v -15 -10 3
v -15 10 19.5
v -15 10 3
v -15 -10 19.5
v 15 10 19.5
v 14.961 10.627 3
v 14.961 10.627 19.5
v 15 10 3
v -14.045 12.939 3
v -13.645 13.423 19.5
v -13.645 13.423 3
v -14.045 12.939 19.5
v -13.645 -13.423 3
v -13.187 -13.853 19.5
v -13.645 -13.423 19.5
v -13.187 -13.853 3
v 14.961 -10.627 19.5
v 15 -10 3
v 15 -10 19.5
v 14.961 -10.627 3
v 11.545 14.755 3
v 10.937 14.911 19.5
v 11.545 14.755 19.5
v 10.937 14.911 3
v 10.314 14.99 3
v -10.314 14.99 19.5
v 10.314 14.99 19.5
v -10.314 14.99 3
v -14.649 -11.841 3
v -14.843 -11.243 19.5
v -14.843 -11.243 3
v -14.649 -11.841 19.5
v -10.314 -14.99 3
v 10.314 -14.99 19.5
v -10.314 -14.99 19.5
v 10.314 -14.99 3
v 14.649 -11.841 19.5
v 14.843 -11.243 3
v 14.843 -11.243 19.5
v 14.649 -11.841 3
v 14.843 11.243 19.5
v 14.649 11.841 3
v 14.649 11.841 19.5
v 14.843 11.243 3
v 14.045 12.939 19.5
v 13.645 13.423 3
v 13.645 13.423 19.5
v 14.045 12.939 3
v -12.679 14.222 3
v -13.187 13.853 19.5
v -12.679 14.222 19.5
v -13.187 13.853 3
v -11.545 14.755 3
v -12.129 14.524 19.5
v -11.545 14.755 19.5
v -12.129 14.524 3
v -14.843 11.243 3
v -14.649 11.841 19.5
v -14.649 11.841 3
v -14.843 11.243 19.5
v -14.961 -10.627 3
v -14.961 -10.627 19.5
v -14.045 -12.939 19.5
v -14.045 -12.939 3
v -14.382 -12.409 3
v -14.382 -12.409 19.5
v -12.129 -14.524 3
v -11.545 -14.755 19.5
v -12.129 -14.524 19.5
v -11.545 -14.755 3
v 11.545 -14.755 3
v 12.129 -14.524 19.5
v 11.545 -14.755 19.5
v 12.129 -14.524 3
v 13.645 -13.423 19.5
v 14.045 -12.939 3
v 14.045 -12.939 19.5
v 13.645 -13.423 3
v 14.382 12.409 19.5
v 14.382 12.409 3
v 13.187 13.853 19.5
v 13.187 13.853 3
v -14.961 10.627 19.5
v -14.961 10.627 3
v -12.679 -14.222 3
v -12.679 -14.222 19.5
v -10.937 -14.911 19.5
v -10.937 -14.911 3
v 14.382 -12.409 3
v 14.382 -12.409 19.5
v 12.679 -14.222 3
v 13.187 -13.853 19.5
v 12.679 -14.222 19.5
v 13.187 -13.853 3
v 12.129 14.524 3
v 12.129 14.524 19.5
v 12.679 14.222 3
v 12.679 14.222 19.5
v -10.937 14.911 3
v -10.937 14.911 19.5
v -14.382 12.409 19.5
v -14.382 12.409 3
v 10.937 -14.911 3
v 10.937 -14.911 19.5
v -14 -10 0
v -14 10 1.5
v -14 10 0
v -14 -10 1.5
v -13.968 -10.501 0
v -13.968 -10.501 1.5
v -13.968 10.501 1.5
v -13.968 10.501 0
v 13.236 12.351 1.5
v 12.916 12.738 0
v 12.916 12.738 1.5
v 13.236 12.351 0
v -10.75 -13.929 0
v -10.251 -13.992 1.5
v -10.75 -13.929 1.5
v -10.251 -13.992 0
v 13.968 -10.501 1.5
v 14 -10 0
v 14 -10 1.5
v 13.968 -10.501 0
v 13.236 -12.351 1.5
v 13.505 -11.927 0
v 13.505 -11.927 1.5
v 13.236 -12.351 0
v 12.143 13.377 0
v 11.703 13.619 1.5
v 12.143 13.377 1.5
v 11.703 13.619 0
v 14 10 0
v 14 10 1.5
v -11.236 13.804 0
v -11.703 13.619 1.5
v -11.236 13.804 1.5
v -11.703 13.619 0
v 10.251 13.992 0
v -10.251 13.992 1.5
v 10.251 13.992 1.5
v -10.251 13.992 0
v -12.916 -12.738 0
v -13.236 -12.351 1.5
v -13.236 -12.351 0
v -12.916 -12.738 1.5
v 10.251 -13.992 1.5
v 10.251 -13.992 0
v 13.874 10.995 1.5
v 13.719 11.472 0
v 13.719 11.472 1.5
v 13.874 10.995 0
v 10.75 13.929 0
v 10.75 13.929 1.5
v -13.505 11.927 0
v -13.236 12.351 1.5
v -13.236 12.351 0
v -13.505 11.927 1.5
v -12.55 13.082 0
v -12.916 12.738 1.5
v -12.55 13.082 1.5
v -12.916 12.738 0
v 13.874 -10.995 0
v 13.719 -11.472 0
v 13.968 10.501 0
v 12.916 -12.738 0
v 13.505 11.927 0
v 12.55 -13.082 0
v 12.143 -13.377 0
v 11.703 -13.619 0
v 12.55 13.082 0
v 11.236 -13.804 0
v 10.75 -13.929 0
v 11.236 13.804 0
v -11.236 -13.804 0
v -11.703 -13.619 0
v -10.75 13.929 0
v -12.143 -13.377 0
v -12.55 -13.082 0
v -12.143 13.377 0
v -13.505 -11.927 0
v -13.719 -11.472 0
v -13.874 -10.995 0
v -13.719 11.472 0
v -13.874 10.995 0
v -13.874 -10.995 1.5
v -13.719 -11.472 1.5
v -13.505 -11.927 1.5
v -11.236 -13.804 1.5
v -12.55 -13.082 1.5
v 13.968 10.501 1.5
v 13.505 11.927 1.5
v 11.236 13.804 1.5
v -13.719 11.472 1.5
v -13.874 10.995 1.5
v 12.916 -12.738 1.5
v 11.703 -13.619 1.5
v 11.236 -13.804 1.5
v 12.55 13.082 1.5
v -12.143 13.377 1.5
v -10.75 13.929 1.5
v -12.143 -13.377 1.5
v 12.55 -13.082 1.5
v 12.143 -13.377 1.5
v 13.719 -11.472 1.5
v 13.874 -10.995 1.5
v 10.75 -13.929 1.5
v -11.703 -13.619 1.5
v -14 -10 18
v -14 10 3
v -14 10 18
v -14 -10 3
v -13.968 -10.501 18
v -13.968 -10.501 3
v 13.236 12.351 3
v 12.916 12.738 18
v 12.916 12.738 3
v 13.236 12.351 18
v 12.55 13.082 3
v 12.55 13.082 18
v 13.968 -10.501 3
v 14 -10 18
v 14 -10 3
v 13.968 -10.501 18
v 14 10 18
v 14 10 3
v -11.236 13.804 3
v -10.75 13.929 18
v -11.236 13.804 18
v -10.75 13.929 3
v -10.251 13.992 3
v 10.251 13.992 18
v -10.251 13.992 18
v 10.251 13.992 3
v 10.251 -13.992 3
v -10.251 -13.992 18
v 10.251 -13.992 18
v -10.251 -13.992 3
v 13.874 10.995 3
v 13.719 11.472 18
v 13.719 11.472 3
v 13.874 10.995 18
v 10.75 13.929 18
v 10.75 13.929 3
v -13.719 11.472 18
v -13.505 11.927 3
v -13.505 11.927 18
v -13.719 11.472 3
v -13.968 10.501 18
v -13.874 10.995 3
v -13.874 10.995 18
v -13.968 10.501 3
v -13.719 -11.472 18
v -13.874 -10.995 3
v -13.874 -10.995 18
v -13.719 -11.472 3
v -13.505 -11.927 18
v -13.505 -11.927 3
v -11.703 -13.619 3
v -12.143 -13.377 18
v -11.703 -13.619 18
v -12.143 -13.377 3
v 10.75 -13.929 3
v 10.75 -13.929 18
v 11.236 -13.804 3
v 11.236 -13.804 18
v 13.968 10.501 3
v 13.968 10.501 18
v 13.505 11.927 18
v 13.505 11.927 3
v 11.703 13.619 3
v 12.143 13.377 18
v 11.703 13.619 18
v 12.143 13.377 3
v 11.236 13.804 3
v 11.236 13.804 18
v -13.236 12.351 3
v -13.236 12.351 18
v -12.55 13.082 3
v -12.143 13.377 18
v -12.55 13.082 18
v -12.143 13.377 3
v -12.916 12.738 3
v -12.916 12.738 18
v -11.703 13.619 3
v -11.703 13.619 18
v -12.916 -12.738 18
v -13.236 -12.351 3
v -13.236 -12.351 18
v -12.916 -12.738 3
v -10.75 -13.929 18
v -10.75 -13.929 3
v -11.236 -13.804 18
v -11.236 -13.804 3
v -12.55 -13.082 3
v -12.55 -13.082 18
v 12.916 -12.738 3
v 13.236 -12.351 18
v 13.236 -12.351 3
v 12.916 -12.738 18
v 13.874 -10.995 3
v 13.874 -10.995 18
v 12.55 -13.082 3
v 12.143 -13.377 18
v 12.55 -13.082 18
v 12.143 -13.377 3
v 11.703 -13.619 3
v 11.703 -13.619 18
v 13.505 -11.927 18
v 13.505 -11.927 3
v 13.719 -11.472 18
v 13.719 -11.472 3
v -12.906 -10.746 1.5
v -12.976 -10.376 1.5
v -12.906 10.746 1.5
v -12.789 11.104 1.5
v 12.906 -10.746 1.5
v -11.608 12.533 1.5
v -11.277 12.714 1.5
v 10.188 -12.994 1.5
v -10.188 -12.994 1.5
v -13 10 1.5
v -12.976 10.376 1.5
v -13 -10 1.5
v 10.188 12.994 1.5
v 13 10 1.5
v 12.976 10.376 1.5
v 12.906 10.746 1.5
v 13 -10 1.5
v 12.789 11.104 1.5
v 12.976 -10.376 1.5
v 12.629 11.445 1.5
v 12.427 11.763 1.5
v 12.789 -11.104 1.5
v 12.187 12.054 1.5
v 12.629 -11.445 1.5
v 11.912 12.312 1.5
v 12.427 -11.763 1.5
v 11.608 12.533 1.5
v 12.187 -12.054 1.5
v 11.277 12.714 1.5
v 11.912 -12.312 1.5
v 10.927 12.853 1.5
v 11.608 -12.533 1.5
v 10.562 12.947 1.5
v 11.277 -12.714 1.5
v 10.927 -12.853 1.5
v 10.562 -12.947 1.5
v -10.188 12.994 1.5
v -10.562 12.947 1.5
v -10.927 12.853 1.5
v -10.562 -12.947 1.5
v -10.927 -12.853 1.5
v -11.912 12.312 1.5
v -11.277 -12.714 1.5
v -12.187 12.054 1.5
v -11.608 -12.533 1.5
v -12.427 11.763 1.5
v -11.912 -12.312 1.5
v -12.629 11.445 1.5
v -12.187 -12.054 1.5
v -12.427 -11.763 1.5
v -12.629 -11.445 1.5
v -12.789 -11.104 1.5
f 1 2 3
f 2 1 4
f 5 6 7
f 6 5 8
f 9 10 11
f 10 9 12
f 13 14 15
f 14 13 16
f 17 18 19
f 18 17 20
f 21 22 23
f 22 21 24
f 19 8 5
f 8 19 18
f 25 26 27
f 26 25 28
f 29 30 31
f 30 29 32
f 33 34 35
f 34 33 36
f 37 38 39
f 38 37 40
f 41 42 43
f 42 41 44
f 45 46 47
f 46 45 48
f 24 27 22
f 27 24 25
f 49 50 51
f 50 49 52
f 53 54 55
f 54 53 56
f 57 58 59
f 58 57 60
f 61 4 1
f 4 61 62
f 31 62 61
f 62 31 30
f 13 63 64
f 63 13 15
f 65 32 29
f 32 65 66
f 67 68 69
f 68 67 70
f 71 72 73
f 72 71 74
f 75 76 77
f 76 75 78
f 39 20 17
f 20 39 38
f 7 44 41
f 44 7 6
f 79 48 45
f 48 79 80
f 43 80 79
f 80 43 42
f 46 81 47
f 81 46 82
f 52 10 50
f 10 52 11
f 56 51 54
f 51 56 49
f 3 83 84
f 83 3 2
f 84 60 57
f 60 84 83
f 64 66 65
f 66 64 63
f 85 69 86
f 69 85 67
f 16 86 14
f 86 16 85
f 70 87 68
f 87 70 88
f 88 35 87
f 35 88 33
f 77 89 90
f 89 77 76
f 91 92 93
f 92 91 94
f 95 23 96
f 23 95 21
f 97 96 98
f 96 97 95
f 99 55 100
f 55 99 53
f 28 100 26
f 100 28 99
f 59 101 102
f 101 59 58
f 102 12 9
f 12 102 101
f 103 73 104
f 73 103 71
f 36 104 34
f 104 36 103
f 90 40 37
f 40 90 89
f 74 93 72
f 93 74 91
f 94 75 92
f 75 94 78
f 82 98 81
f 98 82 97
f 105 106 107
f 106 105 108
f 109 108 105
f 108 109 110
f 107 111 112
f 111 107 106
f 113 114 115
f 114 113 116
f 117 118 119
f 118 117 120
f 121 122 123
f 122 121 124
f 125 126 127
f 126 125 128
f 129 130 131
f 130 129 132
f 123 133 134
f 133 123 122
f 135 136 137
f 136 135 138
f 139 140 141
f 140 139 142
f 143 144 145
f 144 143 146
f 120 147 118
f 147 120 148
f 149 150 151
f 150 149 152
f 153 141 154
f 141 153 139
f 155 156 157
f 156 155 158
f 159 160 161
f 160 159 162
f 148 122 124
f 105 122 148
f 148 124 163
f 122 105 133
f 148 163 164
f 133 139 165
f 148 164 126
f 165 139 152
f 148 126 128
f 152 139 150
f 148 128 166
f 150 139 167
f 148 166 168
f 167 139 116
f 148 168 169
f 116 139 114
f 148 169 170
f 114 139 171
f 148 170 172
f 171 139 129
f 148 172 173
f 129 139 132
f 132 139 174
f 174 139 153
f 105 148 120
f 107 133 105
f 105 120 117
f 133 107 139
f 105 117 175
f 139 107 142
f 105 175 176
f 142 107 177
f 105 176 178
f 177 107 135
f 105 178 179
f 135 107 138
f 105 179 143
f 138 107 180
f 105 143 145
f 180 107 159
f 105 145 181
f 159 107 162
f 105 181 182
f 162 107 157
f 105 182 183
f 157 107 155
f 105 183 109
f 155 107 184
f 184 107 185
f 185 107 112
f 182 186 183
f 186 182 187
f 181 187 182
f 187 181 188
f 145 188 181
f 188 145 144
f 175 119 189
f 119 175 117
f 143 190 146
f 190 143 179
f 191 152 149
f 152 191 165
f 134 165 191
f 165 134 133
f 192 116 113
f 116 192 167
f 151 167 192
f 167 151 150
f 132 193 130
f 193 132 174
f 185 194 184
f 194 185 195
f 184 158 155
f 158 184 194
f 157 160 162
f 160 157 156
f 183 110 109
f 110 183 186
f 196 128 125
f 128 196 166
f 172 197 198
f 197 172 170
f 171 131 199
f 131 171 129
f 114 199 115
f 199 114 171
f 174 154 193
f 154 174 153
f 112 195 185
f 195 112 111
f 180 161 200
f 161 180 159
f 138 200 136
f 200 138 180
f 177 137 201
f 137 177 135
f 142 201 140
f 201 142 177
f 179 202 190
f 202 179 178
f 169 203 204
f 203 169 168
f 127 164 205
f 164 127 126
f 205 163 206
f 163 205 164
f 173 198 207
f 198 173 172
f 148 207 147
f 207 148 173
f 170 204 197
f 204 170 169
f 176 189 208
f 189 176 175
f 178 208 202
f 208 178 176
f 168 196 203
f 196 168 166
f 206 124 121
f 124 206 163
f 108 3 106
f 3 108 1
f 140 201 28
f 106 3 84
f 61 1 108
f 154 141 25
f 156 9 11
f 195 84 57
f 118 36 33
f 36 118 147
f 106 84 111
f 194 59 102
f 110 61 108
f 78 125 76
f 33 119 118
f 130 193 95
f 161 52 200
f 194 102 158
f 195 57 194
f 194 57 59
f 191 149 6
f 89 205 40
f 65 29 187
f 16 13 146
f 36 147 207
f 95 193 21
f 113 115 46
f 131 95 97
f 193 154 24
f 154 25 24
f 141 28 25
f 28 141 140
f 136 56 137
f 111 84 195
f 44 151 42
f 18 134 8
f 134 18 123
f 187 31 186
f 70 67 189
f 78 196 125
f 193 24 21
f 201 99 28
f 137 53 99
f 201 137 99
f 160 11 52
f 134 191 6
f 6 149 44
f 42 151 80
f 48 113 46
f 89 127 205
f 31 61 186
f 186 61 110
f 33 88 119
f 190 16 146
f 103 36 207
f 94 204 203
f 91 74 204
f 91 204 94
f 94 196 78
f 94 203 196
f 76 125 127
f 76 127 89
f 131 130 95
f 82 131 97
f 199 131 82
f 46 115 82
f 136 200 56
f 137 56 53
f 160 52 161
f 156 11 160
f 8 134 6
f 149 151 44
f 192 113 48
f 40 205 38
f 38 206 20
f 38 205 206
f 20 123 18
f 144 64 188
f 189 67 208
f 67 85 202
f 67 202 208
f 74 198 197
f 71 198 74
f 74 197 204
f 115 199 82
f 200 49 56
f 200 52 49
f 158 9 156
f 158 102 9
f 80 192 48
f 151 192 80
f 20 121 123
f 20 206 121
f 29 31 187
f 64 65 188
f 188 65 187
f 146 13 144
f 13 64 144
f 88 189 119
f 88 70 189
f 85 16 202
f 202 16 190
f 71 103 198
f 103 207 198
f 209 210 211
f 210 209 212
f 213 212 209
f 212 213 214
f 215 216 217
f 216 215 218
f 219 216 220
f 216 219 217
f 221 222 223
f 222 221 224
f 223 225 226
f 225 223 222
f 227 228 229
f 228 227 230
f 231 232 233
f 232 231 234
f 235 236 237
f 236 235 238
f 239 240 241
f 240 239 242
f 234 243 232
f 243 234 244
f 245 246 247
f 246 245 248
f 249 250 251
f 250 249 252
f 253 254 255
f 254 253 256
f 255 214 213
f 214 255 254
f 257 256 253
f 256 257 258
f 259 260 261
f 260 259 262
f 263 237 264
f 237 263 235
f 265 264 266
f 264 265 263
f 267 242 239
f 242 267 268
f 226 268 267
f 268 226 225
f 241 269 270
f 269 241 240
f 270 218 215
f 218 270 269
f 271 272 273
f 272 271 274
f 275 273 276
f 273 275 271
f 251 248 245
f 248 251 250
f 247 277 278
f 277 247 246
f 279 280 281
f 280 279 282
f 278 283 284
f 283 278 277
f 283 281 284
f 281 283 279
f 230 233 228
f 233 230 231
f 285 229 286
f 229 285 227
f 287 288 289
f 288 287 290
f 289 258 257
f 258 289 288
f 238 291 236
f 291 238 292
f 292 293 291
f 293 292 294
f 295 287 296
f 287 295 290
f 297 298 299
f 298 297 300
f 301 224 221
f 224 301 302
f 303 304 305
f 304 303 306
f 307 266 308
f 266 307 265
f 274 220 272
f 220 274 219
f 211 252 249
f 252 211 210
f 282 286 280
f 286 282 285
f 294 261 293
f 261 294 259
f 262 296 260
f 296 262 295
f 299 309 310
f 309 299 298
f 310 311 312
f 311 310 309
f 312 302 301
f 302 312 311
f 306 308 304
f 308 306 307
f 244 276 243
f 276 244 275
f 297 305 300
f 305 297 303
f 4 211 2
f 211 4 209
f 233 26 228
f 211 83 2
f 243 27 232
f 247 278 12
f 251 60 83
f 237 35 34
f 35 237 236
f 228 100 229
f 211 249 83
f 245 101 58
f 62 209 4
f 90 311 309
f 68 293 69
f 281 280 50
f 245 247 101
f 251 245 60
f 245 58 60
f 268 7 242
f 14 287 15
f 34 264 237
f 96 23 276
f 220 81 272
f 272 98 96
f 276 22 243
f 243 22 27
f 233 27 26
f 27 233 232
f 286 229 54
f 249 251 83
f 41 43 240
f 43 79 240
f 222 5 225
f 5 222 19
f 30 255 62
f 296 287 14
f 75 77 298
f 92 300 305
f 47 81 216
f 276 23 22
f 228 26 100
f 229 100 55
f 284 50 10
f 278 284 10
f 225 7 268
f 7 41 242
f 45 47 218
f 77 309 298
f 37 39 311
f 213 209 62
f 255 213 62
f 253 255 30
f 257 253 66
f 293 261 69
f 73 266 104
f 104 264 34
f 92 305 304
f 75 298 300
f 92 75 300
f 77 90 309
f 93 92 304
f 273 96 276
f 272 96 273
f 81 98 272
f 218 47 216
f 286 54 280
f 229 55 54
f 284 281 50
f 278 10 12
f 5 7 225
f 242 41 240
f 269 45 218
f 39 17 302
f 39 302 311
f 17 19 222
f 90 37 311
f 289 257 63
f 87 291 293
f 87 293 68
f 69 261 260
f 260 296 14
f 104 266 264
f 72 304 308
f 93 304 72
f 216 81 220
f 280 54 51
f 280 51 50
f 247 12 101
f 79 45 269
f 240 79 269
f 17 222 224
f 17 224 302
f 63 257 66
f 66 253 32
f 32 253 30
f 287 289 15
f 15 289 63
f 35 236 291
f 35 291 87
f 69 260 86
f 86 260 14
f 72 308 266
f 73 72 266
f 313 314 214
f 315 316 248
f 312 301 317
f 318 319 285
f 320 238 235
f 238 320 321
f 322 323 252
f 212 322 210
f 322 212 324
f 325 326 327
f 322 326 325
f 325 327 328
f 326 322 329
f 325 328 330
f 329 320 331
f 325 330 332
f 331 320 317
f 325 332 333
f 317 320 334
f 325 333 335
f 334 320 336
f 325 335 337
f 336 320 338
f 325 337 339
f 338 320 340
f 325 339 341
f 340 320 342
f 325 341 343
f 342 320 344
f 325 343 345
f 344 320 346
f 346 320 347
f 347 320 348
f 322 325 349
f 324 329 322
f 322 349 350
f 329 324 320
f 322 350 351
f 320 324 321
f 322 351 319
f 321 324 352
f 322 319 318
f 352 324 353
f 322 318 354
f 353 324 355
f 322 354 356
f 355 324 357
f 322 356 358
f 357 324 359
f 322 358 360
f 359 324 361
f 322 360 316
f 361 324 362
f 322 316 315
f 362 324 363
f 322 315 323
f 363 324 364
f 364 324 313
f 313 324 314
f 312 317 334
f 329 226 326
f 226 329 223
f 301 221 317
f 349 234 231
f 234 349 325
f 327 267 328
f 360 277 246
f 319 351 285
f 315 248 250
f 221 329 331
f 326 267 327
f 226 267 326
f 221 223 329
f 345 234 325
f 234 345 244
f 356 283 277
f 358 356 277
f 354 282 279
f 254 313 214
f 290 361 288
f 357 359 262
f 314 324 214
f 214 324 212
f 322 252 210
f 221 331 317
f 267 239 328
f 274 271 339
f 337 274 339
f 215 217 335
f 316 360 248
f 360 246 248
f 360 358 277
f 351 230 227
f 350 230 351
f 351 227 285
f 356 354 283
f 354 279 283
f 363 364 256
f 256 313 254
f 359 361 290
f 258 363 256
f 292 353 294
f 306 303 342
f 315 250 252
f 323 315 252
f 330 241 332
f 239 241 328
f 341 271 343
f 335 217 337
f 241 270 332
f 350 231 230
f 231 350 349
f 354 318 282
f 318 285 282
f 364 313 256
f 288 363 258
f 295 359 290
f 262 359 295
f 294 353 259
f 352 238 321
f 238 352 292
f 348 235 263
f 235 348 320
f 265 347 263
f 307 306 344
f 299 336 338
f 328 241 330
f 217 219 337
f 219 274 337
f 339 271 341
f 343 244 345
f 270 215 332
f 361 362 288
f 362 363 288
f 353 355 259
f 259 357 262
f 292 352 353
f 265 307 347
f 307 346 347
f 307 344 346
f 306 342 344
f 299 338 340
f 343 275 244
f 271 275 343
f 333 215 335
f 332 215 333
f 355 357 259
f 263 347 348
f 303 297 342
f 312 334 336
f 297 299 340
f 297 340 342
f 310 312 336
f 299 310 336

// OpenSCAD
$fn = 50;


difference() {
	union() {
		translate(v = [0, 0, 3.0000000000]) {
			hull() {
				translate(v = [-10.0000000000, 10.0000000000, 0]) {
					cylinder(h = 16.5000000000, r = 5);
				}
				translate(v = [10.0000000000, 10.0000000000, 0]) {
					cylinder(h = 16.5000000000, r = 5);
				}
				translate(v = [-10.0000000000, -10.0000000000, 0]) {
					cylinder(h = 16.5000000000, r = 5);
				}
				translate(v = [10.0000000000, -10.0000000000, 0]) {
					cylinder(h = 16.5000000000, r = 5);
				}
			}
		}
		hull() {
			translate(v = [-10.0000000000, 10.0000000000, 0]) {
				cylinder(h = 1.5000000000, r = 4);
			}
			translate(v = [10.0000000000, 10.0000000000, 0]) {
				cylinder(h = 1.5000000000, r = 4);
			}
			translate(v = [-10.0000000000, -10.0000000000, 0]) {
				cylinder(h = 1.5000000000, r = 4);
			}
			translate(v = [10.0000000000, -10.0000000000, 0]) {
				cylinder(h = 1.5000000000, r = 4);
			}
		}
		translate(v = [0, 0, 1.5000000000]) {
			hull() {
				translate(v = [-10.0000000000, 10.0000000000, 0]) {
					cylinder(h = 1.5000000000, r1 = 4, r2 = 5.0000000000);
				}
				translate(v = [10.0000000000, 10.0000000000, 0]) {
					cylinder(h = 1.5000000000, r1 = 4, r2 = 5.0000000000);
				}
				translate(v = [-10.0000000000, -10.0000000000, 0]) {
					cylinder(h = 1.5000000000, r1 = 4, r2 = 5.0000000000);
				}
				translate(v = [10.0000000000, -10.0000000000, 0]) {
					cylinder(h = 1.5000000000, r1 = 4, r2 = 5.0000000000);
				}
			}
		}
	}
	union() {
		translate(v = [0, 0, 3.0000000000]) {
			#hull() {
				translate(v = [-10.0000000000, 10.0000000000, 0]) {
					cylinder(h = 16.5000000000, r = 4);
				}
				translate(v = [10.0000000000, 10.0000000000, 0]) {
					cylinder(h = 16.5000000000, r = 4);
				}
				translate(v = [-10.0000000000, -10.0000000000, 0]) {
					cylinder(h = 16.5000000000, r = 4);
				}
				translate(v = [10.0000000000, -10.0000000000, 0]) {
					cylinder(h = 16.5000000000, r = 4);
				}
			}
		}
		translate(v = [0, 0, 18]) {
			hull() {
				translate(v = [-10.0000000000, 10.0000000000, 0]) {
					cylinder(h = 1.5000000000, r1 = 4, r2 = 5.0000000000);
				}
				translate(v = [10.0000000000, 10.0000000000, 0]) {
					cylinder(h = 1.5000000000, r1 = 4, r2 = 5.0000000000);
				}
				translate(v = [-10.0000000000, -10.0000000000, 0]) {
					cylinder(h = 1.5000000000, r1 = 4, r2 = 5.0000000000);
				}
				translate(v = [10.0000000000, -10.0000000000, 0]) {
					cylinder(h = 1.5000000000, r1 = 4, r2 = 5.0000000000);
				}
			}
		}
		translate(v = [0, 0, 1.5000000000]) {
			#hull() {
				translate(v = [-10.0000000000, 10.0000000000, 0]) {
					cylinder(h = 1.5000000000, r1 = 3, r2 = 4.0000000000);
				}
				translate(v = [10.0000000000, 10.0000000000, 0]) {
					cylinder(h = 1.5000000000, r1 = 3, r2 = 4.0000000000);
				}
				translate(v = [-10.0000000000, -10.0000000000, 0]) {
					cylinder(h = 1.5000000000, r1 = 3, r2 = 4.0000000000);
				}
				translate(v = [10.0000000000, -10.0000000000, 0]) {
					cylinder(h = 1.5000000000, r1 = 3, r2 = 4.0000000000);
				}
			}
		}
	}
}
